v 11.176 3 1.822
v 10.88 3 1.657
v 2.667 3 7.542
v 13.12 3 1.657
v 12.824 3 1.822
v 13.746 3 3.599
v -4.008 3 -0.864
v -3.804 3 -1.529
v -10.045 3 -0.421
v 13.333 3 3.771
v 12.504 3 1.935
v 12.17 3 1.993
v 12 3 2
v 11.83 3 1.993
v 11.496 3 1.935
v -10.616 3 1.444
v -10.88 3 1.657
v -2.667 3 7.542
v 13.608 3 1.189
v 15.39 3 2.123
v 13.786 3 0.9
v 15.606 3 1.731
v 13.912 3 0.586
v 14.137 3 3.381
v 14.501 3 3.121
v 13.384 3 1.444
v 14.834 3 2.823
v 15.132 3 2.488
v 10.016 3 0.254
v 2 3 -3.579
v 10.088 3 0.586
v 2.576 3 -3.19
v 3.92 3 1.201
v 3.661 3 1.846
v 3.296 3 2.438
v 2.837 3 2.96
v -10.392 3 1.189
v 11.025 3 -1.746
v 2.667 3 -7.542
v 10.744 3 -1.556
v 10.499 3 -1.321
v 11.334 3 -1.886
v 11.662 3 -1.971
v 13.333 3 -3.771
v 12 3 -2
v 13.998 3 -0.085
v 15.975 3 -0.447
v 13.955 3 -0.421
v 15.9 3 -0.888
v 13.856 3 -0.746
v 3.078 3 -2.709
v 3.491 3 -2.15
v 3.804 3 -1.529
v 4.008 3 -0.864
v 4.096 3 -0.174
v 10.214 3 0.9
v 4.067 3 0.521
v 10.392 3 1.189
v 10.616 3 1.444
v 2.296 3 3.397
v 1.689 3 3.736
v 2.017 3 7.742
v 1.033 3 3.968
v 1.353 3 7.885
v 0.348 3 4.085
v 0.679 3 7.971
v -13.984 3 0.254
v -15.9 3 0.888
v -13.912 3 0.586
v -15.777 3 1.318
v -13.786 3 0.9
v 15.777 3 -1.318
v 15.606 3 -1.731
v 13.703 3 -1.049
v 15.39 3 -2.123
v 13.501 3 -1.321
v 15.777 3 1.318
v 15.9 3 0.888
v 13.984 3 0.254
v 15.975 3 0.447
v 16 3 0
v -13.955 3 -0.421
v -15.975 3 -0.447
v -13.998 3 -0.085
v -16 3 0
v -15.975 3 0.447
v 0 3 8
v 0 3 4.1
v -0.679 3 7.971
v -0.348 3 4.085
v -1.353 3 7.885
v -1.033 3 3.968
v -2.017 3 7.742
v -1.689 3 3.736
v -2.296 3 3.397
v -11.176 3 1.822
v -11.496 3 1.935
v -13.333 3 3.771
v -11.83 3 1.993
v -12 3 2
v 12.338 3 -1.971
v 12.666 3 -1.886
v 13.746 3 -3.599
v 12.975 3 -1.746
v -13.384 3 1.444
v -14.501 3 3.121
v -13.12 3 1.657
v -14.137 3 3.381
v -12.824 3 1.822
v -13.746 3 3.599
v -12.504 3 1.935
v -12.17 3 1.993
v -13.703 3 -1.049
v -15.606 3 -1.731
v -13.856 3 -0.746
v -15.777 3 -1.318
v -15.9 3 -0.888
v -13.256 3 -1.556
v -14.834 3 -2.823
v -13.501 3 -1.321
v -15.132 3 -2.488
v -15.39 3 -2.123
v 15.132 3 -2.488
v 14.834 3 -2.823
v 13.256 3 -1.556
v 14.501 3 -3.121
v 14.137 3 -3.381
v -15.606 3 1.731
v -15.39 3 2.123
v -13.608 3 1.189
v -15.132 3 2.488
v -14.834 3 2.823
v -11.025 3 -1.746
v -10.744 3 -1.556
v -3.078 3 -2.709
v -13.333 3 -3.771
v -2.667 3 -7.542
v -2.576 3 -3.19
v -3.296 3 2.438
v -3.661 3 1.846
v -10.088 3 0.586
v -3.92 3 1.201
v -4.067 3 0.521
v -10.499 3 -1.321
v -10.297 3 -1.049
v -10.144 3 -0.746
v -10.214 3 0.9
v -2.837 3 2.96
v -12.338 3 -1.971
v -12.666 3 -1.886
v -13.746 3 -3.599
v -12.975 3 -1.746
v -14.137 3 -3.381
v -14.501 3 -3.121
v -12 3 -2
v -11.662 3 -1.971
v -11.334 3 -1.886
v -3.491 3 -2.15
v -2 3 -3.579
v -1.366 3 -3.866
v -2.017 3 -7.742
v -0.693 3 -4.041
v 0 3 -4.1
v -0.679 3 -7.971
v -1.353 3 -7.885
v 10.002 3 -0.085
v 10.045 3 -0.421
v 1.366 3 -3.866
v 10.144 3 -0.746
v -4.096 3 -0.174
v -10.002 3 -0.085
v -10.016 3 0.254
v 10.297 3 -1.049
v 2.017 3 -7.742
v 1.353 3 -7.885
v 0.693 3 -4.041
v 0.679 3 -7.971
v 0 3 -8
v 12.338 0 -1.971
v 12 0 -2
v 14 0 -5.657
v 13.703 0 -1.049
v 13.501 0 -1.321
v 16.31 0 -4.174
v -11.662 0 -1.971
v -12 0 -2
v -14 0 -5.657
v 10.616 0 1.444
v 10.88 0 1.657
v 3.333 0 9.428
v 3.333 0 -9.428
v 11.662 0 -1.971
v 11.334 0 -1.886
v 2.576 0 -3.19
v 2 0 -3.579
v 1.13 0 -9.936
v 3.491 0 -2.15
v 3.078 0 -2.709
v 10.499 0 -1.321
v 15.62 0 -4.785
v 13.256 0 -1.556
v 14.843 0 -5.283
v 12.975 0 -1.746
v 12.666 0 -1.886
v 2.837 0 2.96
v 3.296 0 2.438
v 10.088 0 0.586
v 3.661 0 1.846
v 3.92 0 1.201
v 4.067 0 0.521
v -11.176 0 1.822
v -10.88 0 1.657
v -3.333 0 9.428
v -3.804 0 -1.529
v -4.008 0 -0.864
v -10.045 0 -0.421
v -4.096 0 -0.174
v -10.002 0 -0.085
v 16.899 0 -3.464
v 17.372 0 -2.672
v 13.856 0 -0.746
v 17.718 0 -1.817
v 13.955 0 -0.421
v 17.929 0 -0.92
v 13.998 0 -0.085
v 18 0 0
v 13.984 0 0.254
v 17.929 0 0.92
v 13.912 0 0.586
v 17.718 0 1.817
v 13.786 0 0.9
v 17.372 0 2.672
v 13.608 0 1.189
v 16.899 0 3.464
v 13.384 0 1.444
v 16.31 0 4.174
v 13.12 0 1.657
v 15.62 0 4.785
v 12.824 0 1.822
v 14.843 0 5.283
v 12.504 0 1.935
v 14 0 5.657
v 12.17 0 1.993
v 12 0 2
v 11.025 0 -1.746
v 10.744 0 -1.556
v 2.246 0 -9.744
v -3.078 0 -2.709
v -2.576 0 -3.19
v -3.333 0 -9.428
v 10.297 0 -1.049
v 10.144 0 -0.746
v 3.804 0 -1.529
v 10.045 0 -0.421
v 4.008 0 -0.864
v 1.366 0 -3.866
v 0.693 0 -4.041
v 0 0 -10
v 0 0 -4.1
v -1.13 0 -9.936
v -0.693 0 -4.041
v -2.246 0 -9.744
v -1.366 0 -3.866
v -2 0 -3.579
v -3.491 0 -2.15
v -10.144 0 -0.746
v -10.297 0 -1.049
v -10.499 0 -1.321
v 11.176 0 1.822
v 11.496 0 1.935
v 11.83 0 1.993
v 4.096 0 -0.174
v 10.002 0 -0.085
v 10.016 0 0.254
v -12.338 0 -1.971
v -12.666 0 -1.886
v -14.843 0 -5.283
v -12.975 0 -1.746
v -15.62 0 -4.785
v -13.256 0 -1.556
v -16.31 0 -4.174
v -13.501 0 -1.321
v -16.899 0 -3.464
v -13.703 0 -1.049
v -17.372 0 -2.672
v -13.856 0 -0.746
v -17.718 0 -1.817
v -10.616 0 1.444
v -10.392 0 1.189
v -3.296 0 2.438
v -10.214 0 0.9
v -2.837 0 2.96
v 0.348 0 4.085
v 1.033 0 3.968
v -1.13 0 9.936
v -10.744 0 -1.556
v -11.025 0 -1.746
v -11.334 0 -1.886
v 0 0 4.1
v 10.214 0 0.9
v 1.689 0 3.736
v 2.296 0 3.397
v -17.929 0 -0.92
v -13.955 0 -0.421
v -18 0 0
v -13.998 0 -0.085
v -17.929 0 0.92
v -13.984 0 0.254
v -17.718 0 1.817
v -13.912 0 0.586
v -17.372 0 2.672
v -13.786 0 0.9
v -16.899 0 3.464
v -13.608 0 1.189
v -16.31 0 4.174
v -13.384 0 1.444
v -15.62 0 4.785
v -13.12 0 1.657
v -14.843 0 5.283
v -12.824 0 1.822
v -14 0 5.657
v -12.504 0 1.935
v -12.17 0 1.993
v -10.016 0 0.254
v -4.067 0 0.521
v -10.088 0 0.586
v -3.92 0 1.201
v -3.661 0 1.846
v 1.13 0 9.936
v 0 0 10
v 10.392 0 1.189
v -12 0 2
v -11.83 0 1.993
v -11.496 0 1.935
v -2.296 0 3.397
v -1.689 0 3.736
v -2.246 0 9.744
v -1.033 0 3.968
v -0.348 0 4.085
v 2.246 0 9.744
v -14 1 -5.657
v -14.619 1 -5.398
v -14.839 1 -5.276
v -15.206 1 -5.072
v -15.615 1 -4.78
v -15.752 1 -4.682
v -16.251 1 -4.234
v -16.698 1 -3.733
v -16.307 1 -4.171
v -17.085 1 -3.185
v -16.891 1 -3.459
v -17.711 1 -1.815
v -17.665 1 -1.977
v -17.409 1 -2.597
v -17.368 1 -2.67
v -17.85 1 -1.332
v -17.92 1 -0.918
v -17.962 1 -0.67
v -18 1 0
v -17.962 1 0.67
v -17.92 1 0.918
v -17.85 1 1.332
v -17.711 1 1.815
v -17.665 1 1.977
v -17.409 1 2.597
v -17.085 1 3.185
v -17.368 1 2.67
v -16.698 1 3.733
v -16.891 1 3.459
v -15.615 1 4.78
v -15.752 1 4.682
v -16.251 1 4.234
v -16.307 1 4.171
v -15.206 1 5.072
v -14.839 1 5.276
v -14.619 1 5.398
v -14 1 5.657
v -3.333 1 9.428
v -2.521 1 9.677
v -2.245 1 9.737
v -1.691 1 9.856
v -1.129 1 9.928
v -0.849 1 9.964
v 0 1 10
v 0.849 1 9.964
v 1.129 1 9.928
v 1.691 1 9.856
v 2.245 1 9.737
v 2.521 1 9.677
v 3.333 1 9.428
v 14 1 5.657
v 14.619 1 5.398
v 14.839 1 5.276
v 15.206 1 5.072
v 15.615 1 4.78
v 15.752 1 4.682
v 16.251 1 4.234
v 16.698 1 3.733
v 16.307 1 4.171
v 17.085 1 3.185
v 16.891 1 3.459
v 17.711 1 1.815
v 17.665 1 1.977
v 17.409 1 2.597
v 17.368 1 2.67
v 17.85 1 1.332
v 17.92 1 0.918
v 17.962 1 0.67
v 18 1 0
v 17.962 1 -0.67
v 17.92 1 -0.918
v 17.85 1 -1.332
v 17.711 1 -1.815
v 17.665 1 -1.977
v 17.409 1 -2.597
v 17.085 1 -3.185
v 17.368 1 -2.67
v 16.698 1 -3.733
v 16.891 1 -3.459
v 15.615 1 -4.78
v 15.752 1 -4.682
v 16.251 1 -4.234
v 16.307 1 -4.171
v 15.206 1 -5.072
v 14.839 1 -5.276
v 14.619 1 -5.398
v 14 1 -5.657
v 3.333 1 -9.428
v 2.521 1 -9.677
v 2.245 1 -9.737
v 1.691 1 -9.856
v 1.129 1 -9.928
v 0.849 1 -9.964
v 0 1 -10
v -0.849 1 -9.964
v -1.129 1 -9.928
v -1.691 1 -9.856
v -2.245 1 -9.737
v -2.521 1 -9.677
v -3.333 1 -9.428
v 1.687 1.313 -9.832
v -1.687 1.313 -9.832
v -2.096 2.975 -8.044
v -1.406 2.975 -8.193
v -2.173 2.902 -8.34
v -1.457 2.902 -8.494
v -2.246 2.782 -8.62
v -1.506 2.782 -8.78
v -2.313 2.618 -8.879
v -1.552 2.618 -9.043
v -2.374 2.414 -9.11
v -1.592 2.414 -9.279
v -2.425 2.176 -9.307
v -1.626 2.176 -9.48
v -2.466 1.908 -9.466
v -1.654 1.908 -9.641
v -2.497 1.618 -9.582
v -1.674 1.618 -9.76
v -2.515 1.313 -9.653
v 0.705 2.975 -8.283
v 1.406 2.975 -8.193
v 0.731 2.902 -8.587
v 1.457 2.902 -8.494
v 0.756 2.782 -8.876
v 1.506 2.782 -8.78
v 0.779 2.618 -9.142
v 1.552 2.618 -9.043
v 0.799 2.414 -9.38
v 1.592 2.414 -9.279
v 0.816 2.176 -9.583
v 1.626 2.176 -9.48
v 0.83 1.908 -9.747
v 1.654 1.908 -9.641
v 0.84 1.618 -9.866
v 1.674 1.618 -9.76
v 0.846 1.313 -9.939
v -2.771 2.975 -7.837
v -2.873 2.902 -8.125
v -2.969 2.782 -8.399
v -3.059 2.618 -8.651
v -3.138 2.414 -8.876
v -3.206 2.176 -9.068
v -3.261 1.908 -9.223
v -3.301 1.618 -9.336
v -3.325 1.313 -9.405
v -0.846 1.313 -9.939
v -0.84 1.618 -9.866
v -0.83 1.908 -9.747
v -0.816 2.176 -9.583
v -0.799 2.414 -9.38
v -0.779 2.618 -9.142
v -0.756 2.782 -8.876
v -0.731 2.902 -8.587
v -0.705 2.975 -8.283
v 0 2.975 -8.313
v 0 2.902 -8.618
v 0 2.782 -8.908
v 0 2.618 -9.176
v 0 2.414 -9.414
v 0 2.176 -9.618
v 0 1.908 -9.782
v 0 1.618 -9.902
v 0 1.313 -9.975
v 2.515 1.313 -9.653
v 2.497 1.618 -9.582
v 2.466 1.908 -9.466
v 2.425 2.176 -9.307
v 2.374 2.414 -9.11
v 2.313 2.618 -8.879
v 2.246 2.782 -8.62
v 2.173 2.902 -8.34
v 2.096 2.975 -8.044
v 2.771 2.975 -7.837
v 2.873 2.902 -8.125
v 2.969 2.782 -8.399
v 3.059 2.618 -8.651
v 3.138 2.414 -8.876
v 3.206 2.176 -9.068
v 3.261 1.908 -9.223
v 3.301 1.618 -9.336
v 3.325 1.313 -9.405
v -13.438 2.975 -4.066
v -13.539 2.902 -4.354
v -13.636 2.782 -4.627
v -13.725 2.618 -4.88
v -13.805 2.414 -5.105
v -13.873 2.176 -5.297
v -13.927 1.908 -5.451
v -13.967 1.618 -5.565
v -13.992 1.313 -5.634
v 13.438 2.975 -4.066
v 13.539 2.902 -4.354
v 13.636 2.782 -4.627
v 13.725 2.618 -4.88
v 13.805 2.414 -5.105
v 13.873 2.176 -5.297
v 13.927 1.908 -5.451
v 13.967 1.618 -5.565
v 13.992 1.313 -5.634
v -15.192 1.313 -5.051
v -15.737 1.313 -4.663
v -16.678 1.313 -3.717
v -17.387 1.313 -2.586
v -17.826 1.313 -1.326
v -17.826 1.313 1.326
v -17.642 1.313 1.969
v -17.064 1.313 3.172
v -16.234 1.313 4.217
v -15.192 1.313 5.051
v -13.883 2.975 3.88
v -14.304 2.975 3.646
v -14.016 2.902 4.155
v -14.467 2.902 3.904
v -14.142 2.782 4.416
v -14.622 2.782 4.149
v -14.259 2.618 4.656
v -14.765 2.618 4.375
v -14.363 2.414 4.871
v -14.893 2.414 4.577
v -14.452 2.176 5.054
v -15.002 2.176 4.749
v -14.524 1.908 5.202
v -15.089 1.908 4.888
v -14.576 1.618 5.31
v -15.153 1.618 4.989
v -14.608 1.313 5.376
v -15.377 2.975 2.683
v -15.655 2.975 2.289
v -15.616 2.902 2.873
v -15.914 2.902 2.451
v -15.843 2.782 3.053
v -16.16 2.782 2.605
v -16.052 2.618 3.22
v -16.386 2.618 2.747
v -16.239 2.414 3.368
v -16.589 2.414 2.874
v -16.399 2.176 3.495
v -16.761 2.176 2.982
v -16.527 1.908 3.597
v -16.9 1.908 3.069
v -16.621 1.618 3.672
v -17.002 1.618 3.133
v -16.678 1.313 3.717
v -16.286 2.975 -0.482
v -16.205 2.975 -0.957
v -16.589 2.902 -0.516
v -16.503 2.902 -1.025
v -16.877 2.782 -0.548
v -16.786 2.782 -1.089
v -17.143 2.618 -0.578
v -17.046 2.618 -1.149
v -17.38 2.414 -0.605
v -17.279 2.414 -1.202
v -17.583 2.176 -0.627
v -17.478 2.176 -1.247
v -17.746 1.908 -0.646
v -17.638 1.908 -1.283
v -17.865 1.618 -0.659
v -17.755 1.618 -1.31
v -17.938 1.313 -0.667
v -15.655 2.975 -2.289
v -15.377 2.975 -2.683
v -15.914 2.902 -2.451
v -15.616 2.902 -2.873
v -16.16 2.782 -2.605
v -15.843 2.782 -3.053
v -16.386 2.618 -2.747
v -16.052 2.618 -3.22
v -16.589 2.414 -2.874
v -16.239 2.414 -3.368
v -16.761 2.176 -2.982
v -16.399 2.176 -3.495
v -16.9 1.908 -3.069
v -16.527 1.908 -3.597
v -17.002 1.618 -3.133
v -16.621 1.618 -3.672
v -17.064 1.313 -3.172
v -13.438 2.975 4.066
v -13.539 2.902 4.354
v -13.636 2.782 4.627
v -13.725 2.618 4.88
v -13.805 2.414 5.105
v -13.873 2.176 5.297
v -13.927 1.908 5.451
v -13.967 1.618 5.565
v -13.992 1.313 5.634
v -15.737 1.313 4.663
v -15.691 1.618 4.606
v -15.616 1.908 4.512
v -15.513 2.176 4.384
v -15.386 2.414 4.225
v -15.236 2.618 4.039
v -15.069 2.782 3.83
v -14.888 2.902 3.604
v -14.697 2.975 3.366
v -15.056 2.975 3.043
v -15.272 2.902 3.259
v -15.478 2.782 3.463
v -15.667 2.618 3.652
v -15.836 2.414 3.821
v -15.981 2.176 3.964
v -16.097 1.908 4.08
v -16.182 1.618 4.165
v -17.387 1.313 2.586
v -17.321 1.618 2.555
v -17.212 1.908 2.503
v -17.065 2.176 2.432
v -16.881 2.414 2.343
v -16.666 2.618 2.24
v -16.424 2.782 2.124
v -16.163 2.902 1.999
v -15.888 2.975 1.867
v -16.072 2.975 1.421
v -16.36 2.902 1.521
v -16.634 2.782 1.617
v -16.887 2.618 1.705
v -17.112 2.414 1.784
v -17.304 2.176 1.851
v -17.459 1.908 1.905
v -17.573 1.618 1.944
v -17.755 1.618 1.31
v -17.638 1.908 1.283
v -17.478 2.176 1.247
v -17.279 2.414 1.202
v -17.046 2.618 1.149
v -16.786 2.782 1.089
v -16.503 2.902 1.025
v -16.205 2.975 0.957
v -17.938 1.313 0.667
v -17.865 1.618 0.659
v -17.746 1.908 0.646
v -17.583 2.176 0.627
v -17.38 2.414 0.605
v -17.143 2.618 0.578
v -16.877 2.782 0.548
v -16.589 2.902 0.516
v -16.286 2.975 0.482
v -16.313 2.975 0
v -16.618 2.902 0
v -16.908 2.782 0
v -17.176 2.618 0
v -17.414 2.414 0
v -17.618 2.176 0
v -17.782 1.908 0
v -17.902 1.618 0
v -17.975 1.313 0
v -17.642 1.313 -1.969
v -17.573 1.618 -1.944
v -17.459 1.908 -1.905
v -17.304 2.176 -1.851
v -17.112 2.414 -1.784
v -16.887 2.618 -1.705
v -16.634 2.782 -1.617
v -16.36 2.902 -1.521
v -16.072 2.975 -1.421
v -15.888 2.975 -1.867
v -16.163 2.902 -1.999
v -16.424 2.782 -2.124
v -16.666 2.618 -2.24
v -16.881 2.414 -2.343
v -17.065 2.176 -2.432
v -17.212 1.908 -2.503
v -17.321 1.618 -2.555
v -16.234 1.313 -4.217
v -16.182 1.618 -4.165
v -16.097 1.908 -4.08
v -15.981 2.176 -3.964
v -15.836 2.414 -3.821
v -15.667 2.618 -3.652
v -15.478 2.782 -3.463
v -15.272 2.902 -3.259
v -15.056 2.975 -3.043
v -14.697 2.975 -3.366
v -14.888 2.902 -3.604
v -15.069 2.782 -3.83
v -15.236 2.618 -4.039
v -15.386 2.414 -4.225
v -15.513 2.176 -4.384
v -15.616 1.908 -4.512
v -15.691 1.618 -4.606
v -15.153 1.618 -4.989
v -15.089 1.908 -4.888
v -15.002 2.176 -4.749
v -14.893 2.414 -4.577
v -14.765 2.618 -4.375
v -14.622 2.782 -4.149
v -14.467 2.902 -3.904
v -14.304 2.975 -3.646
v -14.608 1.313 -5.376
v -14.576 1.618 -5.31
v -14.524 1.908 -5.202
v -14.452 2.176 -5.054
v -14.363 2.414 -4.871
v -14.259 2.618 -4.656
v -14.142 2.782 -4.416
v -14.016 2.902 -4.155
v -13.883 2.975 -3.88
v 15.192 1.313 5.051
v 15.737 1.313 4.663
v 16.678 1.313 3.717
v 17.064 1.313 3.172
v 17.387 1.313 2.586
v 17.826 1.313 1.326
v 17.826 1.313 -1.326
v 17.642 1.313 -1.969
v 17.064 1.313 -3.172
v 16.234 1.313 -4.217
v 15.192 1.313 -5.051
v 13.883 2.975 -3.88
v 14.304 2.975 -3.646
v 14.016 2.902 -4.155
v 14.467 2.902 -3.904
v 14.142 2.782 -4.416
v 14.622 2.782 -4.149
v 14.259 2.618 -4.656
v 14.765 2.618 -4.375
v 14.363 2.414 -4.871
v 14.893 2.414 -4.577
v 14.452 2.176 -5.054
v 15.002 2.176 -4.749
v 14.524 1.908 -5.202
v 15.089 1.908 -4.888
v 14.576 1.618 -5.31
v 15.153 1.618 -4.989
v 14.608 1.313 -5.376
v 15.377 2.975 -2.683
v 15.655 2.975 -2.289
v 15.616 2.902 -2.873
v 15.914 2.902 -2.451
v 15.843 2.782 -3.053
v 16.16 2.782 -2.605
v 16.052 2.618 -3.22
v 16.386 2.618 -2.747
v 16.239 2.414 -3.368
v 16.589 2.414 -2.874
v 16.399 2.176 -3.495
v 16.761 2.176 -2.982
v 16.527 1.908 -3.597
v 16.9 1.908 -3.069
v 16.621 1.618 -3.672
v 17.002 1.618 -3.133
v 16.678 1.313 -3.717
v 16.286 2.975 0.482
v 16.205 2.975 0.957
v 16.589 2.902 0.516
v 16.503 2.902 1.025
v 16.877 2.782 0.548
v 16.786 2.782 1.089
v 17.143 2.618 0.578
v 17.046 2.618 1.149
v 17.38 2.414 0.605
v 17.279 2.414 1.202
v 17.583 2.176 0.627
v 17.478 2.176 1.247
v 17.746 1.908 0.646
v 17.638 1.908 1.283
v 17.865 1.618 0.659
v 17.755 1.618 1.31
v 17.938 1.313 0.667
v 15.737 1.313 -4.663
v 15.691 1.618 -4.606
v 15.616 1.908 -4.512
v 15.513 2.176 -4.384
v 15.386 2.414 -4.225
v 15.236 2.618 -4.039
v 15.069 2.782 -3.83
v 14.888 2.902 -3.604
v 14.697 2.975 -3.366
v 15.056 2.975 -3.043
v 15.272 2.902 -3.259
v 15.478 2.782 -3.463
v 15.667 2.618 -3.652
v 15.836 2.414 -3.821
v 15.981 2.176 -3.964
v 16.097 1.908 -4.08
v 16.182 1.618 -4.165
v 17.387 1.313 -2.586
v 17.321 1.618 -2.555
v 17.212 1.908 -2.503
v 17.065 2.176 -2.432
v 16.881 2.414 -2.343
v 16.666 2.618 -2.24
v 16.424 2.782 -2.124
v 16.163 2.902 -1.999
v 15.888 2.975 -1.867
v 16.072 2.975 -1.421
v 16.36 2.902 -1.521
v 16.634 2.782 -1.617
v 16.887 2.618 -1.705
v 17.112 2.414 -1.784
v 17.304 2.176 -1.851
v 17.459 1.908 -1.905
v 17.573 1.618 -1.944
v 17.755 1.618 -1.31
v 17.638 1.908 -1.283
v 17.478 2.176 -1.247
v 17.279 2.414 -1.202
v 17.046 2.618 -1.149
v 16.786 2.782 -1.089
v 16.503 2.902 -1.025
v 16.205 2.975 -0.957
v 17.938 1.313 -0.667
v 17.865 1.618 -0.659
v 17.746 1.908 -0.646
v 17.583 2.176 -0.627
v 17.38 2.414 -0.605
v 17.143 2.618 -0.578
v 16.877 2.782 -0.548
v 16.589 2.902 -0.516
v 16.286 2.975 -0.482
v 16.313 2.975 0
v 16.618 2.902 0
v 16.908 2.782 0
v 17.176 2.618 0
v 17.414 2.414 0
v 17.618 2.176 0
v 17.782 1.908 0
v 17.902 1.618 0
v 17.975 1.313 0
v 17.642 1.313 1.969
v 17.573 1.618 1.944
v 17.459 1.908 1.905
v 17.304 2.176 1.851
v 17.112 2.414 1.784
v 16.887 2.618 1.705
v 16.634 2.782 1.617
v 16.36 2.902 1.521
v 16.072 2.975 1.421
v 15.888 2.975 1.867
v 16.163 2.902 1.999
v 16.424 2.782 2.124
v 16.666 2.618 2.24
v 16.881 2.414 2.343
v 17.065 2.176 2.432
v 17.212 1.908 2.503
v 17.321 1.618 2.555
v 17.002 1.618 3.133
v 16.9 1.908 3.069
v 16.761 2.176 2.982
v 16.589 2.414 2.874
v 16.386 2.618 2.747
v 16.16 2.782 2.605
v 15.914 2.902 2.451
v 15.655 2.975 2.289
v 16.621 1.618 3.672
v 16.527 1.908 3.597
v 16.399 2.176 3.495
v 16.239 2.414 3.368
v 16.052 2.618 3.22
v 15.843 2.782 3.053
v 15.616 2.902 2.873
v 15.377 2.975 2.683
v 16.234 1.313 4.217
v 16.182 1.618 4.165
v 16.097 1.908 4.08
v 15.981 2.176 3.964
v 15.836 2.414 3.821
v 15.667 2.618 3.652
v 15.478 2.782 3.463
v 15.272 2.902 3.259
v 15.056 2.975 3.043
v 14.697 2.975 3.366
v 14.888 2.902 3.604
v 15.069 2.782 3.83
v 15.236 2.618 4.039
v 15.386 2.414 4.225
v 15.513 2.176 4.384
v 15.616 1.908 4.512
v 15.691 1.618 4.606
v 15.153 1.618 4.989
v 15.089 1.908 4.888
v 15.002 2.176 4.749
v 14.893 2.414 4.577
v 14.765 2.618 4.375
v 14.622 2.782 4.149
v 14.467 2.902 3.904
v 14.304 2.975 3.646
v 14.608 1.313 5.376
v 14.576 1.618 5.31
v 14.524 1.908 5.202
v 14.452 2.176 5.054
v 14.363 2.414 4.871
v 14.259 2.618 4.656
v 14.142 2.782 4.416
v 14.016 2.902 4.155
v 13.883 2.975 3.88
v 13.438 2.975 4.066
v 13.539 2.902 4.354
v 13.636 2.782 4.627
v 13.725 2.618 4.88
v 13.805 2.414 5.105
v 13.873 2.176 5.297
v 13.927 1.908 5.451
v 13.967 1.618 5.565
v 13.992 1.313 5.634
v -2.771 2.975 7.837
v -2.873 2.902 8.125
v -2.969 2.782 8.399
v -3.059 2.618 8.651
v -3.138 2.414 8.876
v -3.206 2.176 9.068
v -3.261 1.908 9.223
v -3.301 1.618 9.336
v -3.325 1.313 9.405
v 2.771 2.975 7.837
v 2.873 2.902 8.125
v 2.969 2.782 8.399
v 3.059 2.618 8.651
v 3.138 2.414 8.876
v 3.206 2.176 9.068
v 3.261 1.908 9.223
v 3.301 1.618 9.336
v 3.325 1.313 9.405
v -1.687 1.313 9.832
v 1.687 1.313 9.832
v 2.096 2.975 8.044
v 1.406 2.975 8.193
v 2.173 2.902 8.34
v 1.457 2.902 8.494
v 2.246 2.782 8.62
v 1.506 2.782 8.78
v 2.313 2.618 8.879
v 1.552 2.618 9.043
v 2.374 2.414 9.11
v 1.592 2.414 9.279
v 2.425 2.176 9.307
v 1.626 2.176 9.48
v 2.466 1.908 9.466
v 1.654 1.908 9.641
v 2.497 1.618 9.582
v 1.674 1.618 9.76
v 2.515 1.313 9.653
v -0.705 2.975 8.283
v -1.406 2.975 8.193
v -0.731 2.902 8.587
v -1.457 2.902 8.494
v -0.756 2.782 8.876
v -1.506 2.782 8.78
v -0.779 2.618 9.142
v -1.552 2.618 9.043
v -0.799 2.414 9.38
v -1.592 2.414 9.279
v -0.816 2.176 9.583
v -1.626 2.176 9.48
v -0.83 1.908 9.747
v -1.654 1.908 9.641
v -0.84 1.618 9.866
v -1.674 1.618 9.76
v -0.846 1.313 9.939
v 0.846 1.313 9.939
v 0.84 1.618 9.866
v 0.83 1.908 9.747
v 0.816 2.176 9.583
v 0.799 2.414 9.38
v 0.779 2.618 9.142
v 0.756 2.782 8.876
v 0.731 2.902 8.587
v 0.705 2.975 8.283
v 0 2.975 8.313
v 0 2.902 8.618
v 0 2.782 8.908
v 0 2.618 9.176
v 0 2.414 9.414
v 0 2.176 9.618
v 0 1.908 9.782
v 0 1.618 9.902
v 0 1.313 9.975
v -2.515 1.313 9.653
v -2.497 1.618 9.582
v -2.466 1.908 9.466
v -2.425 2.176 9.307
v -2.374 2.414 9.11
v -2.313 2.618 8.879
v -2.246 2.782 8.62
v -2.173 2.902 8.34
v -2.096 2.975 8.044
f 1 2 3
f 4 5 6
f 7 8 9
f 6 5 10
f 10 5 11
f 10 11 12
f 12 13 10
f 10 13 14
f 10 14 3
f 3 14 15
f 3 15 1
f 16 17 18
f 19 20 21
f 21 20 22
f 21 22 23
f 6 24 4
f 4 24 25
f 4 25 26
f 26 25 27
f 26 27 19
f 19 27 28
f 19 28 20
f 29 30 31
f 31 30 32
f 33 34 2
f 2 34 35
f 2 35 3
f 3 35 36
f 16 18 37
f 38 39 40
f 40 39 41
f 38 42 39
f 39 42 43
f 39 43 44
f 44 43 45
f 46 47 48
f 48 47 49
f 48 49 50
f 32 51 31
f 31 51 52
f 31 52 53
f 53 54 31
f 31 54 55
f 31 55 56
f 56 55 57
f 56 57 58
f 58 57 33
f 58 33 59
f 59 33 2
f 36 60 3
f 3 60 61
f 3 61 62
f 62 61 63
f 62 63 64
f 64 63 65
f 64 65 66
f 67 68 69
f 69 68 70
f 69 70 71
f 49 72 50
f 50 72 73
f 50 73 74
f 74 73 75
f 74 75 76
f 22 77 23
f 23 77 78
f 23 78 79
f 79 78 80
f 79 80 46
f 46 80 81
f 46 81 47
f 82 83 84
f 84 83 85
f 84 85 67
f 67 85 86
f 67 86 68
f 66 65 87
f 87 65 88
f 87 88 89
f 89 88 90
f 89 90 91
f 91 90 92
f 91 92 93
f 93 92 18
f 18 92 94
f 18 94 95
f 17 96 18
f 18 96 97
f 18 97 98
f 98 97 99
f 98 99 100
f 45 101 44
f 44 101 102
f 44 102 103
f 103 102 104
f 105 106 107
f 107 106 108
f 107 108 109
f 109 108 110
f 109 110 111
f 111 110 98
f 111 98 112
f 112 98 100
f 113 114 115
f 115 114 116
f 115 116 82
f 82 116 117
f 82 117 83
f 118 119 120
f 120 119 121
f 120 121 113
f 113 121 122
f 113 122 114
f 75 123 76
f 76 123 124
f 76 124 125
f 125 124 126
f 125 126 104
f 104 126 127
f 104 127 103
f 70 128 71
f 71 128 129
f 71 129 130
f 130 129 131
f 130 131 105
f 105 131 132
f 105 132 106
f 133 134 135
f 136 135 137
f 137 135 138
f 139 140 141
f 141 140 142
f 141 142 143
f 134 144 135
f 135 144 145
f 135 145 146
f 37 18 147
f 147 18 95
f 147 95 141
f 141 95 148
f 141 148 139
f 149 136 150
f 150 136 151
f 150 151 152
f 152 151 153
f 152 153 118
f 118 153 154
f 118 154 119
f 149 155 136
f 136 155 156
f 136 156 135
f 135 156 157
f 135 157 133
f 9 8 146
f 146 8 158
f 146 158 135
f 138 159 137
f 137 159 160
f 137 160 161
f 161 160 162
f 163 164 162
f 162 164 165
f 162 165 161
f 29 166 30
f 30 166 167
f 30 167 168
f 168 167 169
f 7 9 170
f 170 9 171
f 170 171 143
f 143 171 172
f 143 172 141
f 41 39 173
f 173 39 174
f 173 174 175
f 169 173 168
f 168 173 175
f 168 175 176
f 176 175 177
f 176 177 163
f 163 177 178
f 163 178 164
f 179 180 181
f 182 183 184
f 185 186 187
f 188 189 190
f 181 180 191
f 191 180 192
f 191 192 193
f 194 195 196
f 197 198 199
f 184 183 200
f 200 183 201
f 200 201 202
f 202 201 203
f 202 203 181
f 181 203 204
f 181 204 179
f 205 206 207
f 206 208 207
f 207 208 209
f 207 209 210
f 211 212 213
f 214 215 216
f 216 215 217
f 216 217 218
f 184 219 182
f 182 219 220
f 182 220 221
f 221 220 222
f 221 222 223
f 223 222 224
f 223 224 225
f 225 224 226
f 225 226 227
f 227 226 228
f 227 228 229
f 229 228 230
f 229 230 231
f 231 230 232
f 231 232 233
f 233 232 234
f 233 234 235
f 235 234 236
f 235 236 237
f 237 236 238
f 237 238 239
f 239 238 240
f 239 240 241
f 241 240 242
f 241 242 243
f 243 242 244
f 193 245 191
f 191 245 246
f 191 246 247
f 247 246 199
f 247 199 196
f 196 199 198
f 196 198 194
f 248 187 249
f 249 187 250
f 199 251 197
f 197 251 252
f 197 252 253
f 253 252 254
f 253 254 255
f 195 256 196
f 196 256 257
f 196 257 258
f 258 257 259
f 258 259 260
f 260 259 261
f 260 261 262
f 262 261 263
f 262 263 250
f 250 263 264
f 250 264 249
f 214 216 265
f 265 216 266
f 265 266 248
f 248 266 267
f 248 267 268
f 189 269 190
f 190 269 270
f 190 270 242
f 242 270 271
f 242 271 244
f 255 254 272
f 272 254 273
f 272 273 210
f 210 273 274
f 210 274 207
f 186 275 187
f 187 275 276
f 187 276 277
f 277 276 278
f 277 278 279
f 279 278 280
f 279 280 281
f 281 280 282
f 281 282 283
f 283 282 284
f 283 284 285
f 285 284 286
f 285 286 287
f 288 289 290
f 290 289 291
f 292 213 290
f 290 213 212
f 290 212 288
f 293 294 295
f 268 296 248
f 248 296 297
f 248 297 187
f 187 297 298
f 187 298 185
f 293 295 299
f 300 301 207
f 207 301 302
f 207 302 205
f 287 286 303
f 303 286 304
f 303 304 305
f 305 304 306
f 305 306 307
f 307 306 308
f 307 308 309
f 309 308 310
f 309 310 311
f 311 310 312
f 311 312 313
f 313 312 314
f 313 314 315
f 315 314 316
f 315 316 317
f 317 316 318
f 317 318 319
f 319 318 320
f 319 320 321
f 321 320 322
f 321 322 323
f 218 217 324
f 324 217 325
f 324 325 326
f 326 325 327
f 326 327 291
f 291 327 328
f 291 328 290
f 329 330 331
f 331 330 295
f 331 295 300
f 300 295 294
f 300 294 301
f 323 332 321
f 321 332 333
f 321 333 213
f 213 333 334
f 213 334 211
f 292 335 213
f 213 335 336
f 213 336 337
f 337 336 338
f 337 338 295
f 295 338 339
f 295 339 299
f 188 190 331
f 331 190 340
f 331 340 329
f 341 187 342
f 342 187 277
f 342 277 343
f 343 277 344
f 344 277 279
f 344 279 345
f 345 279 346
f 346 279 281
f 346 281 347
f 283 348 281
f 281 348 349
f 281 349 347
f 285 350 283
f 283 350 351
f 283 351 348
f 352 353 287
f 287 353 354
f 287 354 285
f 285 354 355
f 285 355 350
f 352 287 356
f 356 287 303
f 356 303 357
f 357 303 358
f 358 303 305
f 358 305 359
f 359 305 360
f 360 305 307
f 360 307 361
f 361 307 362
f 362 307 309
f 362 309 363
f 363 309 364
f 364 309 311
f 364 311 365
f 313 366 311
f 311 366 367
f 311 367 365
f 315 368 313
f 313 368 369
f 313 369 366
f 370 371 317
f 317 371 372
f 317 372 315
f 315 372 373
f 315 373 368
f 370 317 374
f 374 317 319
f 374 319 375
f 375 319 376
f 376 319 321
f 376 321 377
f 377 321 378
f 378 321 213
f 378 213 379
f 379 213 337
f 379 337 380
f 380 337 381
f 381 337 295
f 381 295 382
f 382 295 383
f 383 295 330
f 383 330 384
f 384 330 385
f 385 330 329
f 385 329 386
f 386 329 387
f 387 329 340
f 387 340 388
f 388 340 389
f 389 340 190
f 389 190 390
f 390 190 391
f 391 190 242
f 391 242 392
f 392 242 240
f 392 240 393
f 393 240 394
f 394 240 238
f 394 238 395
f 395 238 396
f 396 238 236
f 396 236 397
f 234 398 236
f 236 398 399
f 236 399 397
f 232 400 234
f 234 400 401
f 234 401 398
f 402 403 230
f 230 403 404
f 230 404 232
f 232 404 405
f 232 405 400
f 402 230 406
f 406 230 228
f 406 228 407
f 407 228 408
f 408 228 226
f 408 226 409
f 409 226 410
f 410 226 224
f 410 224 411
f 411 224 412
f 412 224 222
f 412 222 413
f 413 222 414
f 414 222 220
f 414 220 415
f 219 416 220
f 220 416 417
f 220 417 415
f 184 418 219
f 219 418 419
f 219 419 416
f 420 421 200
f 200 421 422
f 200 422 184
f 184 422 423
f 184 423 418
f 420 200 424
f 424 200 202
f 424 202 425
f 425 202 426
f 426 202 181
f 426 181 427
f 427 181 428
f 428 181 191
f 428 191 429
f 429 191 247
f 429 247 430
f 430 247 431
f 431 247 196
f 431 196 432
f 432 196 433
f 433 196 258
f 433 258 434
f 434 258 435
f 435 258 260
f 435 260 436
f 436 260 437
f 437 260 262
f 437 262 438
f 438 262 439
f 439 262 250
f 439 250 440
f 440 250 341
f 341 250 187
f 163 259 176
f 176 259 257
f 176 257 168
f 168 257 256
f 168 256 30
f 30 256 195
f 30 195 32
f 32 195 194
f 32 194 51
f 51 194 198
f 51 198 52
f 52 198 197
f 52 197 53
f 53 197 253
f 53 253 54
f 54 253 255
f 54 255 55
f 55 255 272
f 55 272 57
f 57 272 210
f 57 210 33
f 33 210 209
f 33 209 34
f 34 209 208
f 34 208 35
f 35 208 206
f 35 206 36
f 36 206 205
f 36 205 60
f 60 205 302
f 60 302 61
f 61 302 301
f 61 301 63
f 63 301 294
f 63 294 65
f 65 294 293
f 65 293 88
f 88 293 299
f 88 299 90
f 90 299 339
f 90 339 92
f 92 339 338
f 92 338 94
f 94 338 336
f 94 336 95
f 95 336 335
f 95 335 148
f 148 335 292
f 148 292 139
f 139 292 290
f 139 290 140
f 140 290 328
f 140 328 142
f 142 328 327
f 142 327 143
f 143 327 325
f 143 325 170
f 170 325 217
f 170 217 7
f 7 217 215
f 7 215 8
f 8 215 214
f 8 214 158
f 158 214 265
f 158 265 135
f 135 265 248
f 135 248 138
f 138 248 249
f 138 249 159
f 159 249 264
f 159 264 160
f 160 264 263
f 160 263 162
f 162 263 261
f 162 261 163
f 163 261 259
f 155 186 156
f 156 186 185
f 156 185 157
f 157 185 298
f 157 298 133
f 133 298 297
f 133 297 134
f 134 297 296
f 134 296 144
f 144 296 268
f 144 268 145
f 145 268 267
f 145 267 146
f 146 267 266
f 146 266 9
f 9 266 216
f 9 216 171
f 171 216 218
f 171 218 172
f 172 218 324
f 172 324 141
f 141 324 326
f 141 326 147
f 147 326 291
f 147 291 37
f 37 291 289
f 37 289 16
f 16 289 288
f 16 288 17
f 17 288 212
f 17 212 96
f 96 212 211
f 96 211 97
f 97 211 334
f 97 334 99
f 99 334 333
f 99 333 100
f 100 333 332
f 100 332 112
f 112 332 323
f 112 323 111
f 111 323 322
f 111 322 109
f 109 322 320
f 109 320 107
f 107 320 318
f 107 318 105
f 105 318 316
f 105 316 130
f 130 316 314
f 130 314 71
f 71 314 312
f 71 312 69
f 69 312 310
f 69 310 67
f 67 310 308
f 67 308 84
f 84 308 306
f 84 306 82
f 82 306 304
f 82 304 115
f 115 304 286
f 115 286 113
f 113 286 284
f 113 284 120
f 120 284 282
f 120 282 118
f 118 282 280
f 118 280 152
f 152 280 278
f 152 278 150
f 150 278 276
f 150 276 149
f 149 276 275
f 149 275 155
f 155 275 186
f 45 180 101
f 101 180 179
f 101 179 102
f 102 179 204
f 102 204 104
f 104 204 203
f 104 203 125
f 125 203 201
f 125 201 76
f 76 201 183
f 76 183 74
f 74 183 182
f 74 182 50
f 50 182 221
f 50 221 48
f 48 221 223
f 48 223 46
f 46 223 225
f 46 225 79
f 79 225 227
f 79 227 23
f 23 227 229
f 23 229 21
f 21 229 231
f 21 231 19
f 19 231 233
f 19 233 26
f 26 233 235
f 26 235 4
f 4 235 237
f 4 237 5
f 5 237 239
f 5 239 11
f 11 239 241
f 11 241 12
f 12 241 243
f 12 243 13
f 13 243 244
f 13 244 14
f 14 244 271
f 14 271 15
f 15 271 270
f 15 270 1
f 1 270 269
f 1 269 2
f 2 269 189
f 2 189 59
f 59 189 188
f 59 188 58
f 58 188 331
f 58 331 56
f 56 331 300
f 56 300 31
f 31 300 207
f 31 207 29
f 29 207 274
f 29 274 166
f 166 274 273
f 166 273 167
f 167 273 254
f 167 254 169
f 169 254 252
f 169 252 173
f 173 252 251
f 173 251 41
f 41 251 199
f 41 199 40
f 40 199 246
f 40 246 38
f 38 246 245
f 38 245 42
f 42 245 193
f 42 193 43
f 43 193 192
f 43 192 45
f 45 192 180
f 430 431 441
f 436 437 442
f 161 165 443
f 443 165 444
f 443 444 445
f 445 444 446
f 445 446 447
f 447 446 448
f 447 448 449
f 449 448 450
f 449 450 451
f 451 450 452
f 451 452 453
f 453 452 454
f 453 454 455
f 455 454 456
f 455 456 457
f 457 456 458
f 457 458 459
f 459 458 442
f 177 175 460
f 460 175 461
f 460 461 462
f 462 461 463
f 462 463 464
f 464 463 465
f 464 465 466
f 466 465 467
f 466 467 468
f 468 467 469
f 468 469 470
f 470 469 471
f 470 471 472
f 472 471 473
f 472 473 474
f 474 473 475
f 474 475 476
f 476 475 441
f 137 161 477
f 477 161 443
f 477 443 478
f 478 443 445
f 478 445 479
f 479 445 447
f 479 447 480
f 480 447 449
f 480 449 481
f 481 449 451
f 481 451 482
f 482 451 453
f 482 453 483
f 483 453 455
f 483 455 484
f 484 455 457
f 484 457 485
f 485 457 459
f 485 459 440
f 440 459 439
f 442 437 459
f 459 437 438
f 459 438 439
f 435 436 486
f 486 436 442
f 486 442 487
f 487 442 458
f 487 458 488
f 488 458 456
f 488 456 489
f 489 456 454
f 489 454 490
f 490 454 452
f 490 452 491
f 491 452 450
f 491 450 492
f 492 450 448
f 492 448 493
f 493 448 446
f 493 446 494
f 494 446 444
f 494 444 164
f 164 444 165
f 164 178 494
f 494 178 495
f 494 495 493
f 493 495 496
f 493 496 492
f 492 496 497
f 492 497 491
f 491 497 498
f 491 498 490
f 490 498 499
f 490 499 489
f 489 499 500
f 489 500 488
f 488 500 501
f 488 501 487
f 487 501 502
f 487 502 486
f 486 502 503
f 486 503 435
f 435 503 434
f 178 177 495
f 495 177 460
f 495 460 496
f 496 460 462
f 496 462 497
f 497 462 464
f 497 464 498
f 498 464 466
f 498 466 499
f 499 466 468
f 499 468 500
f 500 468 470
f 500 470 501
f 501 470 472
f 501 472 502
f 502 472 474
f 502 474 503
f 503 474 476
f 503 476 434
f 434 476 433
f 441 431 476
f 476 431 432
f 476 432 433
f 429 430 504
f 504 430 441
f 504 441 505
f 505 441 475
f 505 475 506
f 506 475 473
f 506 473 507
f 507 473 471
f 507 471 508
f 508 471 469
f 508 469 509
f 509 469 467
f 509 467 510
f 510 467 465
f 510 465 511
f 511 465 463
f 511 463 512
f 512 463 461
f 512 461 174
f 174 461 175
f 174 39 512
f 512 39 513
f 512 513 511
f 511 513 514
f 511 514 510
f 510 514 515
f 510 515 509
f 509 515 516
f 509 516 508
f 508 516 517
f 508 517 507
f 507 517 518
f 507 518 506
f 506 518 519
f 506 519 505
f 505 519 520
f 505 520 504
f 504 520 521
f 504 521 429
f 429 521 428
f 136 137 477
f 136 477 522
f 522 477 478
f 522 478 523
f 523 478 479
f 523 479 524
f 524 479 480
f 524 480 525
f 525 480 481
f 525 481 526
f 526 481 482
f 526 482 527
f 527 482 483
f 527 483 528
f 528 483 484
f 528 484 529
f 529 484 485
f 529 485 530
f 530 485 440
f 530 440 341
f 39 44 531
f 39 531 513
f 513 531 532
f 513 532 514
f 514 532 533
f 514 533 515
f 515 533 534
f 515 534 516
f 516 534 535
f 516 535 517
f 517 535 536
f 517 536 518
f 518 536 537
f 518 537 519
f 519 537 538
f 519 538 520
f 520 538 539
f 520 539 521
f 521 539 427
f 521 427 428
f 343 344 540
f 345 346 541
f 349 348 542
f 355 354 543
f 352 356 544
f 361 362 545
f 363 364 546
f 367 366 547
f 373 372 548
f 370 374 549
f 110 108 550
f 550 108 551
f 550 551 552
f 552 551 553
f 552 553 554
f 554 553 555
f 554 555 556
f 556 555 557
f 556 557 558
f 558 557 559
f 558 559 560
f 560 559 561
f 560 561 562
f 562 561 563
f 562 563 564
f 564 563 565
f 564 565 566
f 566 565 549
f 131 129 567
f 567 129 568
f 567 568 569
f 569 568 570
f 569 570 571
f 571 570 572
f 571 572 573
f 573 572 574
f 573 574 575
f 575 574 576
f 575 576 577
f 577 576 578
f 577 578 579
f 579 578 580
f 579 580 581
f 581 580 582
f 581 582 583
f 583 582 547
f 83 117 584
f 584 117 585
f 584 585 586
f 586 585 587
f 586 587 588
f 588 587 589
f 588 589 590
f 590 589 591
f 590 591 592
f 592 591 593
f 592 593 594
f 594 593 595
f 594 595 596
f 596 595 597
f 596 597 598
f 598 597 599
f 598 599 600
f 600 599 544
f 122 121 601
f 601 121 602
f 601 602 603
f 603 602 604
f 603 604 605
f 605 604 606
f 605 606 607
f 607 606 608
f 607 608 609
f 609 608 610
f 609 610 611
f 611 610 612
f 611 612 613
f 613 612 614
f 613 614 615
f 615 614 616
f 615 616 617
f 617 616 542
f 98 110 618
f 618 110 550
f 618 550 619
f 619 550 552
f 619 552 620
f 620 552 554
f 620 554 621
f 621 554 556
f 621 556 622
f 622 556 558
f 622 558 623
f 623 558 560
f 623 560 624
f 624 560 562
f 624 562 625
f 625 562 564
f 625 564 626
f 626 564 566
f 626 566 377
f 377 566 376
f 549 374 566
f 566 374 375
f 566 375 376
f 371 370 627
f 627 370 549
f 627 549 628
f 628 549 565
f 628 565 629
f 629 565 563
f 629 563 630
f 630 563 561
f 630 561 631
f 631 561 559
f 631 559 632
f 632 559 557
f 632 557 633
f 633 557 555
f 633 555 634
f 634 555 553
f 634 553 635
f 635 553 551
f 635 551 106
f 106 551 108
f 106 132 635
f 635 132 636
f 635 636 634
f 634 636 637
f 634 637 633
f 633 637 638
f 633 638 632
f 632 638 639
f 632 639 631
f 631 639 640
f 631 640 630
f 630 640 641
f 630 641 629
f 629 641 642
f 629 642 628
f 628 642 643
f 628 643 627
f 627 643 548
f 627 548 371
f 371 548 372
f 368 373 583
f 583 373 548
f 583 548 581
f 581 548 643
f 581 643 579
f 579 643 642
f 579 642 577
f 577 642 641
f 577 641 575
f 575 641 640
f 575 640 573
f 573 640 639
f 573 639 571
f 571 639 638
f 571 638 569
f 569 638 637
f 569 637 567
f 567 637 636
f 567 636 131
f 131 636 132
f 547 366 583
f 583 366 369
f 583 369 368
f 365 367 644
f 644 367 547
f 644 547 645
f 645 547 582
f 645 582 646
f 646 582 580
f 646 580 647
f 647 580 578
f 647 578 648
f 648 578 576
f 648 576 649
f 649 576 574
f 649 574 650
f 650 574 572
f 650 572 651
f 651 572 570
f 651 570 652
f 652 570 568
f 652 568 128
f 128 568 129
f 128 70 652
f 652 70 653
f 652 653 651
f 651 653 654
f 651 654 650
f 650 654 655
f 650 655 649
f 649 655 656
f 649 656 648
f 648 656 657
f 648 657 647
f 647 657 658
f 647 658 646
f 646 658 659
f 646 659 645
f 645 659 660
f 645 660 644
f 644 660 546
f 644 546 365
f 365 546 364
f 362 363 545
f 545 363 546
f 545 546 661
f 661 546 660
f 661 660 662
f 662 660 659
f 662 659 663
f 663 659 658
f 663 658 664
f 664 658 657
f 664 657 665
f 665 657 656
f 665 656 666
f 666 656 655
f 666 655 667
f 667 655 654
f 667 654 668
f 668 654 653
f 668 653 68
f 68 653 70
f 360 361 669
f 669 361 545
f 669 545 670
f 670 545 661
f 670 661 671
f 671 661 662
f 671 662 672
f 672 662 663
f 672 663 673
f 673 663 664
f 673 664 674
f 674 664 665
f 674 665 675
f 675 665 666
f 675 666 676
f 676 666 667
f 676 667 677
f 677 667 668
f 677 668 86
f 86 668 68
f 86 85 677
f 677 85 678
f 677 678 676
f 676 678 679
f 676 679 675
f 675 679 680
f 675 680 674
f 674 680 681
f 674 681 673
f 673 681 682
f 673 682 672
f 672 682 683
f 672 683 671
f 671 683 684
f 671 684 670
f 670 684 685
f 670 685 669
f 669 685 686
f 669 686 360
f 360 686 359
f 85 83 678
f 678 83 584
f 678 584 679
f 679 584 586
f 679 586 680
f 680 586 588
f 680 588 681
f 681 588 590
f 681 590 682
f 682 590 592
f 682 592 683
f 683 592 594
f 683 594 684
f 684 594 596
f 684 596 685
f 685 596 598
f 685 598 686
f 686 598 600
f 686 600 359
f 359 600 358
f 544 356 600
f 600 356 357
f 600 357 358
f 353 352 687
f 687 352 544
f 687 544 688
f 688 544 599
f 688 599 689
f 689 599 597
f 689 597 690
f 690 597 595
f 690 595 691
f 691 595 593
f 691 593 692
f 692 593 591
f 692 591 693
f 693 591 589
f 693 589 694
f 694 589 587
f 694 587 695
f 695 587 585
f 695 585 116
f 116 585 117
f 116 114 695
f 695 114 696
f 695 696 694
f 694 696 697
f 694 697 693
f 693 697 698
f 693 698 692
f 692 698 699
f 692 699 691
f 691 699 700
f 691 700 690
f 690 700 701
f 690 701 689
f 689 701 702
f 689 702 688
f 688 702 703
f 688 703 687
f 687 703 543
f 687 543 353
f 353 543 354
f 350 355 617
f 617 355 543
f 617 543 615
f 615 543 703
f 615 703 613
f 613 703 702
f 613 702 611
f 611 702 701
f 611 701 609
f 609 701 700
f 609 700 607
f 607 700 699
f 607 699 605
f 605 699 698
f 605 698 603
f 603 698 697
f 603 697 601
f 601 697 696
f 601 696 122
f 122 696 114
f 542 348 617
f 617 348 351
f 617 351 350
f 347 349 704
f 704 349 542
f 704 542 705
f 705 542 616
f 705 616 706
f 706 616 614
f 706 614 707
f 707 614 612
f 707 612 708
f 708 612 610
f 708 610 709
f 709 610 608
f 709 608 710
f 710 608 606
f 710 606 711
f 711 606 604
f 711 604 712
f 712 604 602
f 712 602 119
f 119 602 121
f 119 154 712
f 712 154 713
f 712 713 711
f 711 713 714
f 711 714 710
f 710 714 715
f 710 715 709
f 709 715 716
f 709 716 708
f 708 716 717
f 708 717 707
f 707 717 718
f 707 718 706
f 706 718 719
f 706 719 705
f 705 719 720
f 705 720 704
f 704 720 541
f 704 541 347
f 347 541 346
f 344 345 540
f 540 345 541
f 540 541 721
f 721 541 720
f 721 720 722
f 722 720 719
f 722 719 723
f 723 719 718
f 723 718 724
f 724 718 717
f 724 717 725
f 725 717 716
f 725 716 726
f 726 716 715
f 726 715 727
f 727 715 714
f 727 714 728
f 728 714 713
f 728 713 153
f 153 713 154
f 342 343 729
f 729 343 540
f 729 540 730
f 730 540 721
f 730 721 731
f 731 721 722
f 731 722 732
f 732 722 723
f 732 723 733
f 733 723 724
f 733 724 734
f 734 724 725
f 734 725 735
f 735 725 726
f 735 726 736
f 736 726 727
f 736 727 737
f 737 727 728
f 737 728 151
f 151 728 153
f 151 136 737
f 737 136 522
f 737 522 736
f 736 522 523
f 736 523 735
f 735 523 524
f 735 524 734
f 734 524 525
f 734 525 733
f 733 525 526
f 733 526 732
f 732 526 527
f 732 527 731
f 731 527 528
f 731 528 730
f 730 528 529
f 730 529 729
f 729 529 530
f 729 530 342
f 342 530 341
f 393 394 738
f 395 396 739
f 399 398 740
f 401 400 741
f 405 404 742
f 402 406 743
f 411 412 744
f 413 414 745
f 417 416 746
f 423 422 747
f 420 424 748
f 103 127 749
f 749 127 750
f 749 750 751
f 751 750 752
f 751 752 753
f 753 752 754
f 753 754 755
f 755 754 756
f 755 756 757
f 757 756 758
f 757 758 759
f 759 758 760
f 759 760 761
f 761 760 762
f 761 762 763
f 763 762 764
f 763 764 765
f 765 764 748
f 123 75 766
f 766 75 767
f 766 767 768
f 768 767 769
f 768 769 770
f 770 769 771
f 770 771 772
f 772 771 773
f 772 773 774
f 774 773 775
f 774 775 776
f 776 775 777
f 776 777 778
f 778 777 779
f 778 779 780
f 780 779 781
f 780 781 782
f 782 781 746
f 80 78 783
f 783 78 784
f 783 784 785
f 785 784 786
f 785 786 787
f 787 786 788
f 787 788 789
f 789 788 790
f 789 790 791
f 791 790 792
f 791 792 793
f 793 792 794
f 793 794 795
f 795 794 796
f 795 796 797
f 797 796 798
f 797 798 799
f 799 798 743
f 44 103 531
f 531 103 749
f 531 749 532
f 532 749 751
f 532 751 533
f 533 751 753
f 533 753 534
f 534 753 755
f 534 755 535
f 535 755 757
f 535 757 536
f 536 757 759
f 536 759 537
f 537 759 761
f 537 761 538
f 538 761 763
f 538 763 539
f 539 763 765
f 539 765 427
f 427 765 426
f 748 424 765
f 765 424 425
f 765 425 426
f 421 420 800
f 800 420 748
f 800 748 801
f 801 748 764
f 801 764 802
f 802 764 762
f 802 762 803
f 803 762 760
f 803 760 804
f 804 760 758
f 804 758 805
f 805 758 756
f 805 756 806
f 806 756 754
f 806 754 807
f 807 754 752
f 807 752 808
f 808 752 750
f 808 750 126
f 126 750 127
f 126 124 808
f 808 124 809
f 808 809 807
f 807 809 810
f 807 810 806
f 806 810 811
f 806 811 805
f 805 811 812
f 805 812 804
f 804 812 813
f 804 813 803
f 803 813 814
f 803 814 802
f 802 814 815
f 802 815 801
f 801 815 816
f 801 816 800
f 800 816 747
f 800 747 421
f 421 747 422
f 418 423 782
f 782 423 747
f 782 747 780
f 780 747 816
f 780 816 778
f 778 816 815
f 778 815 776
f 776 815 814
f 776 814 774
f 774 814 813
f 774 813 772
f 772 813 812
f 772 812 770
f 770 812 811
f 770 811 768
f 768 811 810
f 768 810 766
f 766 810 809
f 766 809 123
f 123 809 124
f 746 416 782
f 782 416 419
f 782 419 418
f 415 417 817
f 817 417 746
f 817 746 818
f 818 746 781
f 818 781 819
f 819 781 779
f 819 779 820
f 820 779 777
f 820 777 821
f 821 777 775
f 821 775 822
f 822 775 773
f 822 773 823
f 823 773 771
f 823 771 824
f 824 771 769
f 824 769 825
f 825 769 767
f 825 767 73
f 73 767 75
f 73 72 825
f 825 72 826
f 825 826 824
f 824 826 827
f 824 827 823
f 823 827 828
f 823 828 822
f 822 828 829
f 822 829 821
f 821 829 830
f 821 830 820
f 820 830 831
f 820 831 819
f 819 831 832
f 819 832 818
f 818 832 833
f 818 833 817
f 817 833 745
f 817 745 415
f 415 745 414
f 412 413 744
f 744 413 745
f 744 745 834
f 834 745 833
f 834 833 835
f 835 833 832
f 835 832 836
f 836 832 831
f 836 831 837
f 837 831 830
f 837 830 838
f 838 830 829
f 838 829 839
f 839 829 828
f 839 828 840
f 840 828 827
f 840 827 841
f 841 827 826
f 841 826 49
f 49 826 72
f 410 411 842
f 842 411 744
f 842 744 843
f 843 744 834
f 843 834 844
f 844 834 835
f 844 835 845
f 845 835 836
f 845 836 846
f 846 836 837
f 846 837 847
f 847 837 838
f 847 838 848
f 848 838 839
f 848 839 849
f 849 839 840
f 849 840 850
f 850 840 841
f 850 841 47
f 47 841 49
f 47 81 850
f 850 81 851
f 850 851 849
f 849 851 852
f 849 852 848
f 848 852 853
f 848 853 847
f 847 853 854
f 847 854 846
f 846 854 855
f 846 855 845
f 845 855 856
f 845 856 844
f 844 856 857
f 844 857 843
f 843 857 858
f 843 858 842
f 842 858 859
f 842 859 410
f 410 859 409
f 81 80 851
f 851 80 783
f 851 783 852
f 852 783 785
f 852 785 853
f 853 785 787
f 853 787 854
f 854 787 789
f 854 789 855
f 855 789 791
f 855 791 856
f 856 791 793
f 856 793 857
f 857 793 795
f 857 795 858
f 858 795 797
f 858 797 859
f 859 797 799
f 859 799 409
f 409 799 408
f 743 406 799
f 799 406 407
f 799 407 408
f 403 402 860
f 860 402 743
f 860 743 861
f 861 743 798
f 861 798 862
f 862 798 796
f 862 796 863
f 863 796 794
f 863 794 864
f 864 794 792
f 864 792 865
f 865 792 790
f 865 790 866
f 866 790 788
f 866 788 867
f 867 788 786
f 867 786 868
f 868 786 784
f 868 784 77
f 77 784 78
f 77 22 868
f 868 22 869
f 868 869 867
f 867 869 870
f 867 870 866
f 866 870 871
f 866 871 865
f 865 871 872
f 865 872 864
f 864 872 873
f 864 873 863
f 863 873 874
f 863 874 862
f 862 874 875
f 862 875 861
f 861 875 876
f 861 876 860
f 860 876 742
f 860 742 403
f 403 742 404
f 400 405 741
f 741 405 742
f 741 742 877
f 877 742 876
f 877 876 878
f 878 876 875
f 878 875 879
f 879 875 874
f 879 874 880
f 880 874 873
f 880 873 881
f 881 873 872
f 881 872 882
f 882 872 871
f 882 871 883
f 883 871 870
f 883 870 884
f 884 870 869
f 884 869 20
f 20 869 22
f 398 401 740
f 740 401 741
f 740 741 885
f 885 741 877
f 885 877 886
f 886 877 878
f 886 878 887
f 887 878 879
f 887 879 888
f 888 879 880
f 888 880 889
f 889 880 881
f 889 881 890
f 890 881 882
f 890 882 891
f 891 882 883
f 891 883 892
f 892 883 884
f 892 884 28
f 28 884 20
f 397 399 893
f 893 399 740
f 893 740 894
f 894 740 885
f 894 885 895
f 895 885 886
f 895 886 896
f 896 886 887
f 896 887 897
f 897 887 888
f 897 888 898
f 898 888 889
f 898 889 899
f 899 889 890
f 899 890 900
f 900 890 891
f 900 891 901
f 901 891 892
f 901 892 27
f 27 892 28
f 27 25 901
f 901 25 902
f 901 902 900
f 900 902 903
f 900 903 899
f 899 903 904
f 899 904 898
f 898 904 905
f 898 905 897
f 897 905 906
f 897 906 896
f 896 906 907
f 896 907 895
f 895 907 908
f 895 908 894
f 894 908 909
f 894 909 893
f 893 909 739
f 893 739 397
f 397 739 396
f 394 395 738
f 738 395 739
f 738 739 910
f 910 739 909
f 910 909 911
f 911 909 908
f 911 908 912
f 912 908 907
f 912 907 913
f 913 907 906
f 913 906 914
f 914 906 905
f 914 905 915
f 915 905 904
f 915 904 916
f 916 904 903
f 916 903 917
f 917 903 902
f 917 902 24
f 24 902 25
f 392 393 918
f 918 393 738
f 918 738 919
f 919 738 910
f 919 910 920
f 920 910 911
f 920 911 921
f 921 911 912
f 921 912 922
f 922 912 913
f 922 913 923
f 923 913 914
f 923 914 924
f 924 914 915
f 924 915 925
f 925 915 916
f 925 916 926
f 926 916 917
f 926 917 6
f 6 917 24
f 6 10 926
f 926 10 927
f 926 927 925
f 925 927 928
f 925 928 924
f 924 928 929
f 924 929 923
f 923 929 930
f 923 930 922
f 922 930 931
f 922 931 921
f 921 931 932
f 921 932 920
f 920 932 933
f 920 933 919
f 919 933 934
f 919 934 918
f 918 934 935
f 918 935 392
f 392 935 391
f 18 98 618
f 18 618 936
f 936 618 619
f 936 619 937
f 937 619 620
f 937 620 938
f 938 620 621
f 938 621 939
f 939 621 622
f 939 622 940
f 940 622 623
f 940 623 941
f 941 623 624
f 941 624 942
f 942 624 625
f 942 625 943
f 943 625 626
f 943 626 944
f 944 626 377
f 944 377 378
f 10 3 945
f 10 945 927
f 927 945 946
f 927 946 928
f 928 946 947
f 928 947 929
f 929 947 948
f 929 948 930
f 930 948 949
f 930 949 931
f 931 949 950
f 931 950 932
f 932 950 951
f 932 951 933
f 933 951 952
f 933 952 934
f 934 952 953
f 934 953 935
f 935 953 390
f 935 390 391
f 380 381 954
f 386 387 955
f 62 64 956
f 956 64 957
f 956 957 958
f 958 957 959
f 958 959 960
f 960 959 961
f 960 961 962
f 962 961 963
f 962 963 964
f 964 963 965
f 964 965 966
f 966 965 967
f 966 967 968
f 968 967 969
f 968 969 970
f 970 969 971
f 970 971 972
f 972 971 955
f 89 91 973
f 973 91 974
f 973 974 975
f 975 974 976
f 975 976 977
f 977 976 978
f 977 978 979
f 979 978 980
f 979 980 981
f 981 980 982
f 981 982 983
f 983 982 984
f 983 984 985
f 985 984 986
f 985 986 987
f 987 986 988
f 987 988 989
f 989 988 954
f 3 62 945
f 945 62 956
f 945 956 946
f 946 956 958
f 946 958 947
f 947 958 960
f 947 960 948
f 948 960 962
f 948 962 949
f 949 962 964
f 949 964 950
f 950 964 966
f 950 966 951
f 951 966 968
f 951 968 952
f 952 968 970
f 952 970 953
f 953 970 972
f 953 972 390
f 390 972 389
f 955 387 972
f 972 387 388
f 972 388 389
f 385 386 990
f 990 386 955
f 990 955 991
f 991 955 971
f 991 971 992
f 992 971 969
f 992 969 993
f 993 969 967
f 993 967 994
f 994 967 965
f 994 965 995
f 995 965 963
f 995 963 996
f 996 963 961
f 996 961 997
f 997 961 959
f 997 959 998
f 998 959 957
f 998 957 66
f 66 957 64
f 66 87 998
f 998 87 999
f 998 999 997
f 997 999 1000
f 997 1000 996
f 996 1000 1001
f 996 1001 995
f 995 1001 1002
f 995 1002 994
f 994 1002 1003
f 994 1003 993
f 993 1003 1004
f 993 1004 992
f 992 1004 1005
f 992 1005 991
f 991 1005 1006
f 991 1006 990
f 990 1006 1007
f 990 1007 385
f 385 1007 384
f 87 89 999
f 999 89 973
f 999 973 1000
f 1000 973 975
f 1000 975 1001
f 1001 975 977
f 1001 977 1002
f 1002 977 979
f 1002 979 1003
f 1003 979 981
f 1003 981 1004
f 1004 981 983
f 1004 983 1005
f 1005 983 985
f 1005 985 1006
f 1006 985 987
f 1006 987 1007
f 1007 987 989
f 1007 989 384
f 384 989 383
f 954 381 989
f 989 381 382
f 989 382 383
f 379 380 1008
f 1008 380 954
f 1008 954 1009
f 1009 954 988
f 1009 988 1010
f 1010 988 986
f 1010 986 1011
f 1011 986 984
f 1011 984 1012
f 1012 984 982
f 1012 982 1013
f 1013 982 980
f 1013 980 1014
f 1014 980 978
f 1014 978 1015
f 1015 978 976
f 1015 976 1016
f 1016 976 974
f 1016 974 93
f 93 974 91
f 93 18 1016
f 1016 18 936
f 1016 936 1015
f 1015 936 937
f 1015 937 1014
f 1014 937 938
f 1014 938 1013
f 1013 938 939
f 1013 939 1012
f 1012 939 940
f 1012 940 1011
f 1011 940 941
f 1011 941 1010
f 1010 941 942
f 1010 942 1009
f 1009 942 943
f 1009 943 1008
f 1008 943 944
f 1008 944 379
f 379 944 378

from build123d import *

# Parameters (mm, degrees)
SKETCH1_R           = 4.1
SKETCH1_R_2         = 2
BOSS_EXTRUDE1_DEPTH = 3
FILLET1_R           = 2


with BuildPart() as part:
    # Sketch1 → Boss-Extrude1 (new body)
    with BuildSketch(Plane(origin=(0, 0, 0), x_dir=(1, 0, 0), z_dir=(0, 1, 0))):
        with BuildLine():
            Line((-14, 5.656854249), (-3.333333333, 9.428090416))
            ThreePointArc((-3.333333333, 9.428090416), (0, 10), (3.333333333, 9.428090416))
            Line((3.333333333, 9.428090416), (14, 5.656854249))
            ThreePointArc((14, 5.656854249), (18, 0), (14, -5.656854249))
            Line((14, -5.656854249), (3.333333333, -9.428090416))
            ThreePointArc((3.333333333, -9.428090416), (0, -10), (-3.333333333, -9.428090416))
            Line((-3.333333333, -9.428090416), (-14, -5.656854249))
            ThreePointArc((-14, -5.656854249), (-18, 0), (-14, 5.656854249))
        make_face()
        with Locations(Location((0, 0, 0), (0, 0, 270))):
            Circle(SKETCH1_R, mode=Mode.SUBTRACT)
        with Locations(Location((-12, 0, 0), (0, 0, 270))):
            Circle(SKETCH1_R_2, mode=Mode.SUBTRACT)
        with Locations(Location((12, 0, 0), (0, 0, 270))):
            Circle(SKETCH1_R_2, mode=Mode.SUBTRACT)
    extrude(amount=BOSS_EXTRUDE1_DEPTH)

    # Fillet1
    fillet1_edges = [part.edges().sort_by_distance(p)[0] for p in [
        (0, 3, 10),
        (8.666666667, 3, 7.542472333),
        (18, 3, 0),
        (8.666666667, 3, -7.542472333),
        (0, 3, -10),
        (-8.666666667, 3, -7.542472333),
        (-18, 3, 0),
        (-8.666666667, 3, 7.542472333),
    ]]
    fillet(fillet1_edges, radius=FILLET1_R)


solid = part.part
